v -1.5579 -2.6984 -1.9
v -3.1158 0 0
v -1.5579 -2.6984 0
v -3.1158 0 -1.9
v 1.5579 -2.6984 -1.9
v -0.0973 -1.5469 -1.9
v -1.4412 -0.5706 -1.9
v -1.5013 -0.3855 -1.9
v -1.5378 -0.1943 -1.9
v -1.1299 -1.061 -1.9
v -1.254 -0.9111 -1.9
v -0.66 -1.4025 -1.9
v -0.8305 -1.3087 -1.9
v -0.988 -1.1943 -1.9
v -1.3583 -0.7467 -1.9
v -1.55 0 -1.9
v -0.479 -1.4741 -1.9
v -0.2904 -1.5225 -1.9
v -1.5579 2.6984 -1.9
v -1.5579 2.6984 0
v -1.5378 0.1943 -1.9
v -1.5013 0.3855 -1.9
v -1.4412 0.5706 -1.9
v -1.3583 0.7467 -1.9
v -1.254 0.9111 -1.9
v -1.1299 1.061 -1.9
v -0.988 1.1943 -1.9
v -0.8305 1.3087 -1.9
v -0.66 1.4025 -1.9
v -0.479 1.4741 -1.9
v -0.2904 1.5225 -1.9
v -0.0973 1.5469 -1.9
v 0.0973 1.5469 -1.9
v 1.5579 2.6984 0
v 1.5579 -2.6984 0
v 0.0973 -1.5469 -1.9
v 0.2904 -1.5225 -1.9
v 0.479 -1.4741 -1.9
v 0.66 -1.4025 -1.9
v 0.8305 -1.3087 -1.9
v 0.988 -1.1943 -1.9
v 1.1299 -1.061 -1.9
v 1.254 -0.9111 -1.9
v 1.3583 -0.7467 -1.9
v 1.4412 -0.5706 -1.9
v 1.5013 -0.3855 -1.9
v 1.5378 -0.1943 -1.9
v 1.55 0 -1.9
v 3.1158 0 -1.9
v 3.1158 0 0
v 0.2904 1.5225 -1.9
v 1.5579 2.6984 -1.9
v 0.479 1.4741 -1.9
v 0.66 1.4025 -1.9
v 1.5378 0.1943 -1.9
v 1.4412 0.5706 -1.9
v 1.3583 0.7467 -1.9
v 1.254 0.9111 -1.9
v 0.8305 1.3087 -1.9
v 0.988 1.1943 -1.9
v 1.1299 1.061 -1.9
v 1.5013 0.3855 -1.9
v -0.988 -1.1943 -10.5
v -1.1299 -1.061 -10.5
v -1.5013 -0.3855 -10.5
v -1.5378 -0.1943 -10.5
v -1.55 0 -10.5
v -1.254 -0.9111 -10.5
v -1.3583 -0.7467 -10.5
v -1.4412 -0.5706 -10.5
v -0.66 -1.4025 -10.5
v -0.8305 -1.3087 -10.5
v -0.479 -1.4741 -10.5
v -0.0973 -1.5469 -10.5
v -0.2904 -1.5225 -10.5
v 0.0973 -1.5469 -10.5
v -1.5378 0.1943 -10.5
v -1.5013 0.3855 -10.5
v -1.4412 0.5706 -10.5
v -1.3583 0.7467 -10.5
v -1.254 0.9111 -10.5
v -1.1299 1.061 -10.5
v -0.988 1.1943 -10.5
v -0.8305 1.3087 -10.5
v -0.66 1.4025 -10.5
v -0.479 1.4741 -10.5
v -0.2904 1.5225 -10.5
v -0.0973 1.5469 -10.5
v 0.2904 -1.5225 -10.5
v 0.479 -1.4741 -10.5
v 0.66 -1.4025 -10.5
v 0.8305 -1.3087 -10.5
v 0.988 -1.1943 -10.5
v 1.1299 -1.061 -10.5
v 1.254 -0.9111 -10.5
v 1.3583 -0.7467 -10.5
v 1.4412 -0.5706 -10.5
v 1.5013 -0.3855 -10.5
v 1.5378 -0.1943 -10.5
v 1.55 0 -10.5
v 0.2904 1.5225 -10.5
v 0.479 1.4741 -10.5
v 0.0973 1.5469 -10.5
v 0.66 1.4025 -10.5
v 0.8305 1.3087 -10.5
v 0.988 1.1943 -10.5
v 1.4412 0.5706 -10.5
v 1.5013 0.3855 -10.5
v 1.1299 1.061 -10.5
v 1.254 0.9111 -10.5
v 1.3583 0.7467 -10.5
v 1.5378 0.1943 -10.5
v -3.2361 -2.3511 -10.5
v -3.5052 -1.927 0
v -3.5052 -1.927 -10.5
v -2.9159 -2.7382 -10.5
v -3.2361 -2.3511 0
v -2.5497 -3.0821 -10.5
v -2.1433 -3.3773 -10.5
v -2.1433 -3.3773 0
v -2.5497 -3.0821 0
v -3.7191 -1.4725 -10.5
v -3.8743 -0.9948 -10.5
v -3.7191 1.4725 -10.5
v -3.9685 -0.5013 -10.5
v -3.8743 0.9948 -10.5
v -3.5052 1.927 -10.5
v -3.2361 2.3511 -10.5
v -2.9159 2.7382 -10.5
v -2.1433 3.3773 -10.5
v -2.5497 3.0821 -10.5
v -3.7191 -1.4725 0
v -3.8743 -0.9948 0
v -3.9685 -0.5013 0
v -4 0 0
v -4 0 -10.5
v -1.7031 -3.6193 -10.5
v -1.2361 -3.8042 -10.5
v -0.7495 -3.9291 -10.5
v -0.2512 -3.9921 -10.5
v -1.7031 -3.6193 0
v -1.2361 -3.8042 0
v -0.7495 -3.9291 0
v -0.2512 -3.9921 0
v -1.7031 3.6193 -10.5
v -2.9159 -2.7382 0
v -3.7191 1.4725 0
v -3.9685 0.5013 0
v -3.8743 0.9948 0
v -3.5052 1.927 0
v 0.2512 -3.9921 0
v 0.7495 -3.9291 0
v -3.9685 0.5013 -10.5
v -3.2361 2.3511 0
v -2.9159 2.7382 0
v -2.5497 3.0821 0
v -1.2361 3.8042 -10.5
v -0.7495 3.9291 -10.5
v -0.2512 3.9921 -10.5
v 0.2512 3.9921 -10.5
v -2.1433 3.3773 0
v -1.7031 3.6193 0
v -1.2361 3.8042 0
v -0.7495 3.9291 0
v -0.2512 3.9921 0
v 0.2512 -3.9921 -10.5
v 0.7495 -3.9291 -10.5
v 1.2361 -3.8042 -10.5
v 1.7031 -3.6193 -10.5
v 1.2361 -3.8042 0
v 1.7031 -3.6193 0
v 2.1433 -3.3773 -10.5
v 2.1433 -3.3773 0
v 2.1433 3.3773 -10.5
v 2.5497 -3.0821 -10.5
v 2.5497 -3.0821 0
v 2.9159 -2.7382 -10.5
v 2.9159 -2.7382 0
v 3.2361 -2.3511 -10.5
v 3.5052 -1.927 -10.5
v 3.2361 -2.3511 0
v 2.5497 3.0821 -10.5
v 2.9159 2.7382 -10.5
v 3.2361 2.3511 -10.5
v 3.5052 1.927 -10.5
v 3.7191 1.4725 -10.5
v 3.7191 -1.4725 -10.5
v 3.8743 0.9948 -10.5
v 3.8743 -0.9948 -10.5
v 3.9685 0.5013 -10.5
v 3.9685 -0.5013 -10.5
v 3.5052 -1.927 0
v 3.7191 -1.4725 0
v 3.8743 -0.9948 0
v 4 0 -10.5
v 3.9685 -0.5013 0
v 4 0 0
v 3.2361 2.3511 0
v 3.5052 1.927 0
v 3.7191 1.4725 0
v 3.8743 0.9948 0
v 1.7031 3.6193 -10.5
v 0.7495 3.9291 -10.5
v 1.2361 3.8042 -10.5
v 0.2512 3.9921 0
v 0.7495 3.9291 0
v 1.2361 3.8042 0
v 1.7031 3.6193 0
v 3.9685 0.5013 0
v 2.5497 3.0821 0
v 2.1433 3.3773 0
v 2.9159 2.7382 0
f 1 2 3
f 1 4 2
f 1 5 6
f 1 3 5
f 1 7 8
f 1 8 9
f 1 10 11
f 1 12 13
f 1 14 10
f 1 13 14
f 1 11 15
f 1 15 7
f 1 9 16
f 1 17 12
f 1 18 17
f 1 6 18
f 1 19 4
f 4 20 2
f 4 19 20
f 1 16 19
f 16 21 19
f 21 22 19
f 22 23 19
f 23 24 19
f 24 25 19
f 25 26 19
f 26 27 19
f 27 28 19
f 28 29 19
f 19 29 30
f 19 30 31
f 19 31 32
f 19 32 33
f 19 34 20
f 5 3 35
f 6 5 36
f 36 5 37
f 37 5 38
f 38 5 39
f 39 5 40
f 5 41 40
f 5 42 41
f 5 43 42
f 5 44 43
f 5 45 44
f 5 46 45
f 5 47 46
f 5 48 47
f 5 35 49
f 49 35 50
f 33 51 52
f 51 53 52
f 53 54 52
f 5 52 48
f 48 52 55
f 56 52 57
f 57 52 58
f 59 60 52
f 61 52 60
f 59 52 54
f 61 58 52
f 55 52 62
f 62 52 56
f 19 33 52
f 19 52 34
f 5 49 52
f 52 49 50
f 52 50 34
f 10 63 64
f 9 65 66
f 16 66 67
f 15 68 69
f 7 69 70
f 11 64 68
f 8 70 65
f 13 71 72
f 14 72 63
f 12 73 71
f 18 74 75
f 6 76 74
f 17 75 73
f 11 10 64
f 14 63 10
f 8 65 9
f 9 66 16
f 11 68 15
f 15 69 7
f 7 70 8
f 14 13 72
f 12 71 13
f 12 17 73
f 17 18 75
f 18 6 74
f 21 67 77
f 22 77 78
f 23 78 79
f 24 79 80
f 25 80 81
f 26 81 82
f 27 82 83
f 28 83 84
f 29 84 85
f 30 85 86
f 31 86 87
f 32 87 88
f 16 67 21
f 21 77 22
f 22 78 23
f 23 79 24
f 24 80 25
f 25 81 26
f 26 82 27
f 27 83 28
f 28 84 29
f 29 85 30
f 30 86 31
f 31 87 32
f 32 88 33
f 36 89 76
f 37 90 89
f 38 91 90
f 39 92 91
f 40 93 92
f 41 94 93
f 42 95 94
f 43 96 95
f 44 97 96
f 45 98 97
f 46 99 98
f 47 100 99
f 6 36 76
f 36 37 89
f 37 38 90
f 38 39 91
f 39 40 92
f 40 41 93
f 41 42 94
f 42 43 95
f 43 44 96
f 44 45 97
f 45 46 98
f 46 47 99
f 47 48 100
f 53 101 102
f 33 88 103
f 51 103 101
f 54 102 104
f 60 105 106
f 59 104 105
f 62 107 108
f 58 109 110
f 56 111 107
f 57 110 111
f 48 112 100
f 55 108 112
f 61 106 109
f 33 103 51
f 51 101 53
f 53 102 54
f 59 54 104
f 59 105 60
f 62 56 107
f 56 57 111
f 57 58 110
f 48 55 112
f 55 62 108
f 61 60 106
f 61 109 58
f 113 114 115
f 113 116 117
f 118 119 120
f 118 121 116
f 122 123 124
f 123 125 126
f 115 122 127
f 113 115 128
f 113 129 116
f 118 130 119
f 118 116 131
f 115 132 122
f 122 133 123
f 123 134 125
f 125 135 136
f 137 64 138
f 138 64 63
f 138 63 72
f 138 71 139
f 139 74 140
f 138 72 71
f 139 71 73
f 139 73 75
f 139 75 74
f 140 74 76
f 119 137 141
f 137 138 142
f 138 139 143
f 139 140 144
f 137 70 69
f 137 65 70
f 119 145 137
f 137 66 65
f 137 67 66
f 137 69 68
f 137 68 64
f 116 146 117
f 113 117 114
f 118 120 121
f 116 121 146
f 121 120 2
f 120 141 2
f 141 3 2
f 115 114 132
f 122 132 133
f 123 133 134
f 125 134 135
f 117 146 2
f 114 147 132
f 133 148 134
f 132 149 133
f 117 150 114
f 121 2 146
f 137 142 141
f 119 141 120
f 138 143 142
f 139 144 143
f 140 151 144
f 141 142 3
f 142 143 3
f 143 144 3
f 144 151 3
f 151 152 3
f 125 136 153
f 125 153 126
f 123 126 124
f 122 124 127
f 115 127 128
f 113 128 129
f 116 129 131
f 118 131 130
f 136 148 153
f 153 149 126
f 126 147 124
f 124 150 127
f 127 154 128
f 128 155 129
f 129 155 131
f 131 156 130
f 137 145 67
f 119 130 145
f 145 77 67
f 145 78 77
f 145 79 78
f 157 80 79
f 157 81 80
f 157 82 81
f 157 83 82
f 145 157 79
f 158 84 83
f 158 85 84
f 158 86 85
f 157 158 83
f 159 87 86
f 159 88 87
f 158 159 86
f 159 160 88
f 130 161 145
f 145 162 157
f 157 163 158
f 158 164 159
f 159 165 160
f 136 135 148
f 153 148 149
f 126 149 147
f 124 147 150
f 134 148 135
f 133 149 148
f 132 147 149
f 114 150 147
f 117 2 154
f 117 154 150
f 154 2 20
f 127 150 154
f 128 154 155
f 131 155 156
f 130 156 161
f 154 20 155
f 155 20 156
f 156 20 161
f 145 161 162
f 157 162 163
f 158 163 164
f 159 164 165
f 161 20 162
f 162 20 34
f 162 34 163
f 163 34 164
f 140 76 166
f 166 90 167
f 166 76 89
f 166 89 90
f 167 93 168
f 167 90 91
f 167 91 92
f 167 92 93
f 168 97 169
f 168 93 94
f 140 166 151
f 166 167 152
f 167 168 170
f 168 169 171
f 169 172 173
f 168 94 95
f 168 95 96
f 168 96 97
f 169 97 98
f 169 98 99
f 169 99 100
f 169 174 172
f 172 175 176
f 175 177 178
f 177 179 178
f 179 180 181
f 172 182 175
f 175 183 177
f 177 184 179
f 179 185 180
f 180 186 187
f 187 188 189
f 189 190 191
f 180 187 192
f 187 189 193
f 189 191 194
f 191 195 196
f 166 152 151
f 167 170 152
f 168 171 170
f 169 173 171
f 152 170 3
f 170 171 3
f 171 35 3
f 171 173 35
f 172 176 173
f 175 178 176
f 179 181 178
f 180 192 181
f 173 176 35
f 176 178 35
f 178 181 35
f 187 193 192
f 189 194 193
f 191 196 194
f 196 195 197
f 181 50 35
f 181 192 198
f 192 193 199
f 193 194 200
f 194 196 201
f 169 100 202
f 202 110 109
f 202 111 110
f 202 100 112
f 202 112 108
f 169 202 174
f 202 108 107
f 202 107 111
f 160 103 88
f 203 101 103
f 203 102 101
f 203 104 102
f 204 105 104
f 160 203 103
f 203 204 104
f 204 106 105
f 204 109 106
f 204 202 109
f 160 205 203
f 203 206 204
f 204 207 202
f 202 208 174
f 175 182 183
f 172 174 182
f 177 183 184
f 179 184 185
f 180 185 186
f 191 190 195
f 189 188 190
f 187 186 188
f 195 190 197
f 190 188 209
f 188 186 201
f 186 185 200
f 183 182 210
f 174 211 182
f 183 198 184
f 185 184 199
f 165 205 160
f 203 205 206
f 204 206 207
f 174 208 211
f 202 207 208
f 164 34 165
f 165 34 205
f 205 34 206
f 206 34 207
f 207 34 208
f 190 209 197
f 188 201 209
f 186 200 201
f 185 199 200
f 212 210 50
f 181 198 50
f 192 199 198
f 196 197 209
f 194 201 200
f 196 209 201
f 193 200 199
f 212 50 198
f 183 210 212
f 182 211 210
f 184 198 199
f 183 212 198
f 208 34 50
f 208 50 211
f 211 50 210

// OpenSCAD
$fn = 50;

difference() {
	union() {
		translate(v = [0, 0, -10.5]) {
			cylinder(h = 10.5, r = 4.0);
		}
	}
	union() {
		translate(v = [0, 0, 0]) {
			rotate(a = [0, 0, 0]) {
				difference() {
					union() {
						translate(v = [0, 0, -1.9]) {
							linear_extrude(height = 1.9) {
								polygon(points = [[3.1158, 0.0], [1.5579000000000005, 2.698361953111554], [-1.5578999999999994, 2.6983619531115544], [-3.1158, 3.815754496783323e-16], [-1.5579000000000014, -2.6983619531115535], [1.557899999999998, -2.6983619531115552]]);
							}
						}
					}
					union();
				}
			}
		}
		#translate(v = [0, 0, -100.0]) {
			cylinder(h = 200, r = 1.55);
		}
	}
}
